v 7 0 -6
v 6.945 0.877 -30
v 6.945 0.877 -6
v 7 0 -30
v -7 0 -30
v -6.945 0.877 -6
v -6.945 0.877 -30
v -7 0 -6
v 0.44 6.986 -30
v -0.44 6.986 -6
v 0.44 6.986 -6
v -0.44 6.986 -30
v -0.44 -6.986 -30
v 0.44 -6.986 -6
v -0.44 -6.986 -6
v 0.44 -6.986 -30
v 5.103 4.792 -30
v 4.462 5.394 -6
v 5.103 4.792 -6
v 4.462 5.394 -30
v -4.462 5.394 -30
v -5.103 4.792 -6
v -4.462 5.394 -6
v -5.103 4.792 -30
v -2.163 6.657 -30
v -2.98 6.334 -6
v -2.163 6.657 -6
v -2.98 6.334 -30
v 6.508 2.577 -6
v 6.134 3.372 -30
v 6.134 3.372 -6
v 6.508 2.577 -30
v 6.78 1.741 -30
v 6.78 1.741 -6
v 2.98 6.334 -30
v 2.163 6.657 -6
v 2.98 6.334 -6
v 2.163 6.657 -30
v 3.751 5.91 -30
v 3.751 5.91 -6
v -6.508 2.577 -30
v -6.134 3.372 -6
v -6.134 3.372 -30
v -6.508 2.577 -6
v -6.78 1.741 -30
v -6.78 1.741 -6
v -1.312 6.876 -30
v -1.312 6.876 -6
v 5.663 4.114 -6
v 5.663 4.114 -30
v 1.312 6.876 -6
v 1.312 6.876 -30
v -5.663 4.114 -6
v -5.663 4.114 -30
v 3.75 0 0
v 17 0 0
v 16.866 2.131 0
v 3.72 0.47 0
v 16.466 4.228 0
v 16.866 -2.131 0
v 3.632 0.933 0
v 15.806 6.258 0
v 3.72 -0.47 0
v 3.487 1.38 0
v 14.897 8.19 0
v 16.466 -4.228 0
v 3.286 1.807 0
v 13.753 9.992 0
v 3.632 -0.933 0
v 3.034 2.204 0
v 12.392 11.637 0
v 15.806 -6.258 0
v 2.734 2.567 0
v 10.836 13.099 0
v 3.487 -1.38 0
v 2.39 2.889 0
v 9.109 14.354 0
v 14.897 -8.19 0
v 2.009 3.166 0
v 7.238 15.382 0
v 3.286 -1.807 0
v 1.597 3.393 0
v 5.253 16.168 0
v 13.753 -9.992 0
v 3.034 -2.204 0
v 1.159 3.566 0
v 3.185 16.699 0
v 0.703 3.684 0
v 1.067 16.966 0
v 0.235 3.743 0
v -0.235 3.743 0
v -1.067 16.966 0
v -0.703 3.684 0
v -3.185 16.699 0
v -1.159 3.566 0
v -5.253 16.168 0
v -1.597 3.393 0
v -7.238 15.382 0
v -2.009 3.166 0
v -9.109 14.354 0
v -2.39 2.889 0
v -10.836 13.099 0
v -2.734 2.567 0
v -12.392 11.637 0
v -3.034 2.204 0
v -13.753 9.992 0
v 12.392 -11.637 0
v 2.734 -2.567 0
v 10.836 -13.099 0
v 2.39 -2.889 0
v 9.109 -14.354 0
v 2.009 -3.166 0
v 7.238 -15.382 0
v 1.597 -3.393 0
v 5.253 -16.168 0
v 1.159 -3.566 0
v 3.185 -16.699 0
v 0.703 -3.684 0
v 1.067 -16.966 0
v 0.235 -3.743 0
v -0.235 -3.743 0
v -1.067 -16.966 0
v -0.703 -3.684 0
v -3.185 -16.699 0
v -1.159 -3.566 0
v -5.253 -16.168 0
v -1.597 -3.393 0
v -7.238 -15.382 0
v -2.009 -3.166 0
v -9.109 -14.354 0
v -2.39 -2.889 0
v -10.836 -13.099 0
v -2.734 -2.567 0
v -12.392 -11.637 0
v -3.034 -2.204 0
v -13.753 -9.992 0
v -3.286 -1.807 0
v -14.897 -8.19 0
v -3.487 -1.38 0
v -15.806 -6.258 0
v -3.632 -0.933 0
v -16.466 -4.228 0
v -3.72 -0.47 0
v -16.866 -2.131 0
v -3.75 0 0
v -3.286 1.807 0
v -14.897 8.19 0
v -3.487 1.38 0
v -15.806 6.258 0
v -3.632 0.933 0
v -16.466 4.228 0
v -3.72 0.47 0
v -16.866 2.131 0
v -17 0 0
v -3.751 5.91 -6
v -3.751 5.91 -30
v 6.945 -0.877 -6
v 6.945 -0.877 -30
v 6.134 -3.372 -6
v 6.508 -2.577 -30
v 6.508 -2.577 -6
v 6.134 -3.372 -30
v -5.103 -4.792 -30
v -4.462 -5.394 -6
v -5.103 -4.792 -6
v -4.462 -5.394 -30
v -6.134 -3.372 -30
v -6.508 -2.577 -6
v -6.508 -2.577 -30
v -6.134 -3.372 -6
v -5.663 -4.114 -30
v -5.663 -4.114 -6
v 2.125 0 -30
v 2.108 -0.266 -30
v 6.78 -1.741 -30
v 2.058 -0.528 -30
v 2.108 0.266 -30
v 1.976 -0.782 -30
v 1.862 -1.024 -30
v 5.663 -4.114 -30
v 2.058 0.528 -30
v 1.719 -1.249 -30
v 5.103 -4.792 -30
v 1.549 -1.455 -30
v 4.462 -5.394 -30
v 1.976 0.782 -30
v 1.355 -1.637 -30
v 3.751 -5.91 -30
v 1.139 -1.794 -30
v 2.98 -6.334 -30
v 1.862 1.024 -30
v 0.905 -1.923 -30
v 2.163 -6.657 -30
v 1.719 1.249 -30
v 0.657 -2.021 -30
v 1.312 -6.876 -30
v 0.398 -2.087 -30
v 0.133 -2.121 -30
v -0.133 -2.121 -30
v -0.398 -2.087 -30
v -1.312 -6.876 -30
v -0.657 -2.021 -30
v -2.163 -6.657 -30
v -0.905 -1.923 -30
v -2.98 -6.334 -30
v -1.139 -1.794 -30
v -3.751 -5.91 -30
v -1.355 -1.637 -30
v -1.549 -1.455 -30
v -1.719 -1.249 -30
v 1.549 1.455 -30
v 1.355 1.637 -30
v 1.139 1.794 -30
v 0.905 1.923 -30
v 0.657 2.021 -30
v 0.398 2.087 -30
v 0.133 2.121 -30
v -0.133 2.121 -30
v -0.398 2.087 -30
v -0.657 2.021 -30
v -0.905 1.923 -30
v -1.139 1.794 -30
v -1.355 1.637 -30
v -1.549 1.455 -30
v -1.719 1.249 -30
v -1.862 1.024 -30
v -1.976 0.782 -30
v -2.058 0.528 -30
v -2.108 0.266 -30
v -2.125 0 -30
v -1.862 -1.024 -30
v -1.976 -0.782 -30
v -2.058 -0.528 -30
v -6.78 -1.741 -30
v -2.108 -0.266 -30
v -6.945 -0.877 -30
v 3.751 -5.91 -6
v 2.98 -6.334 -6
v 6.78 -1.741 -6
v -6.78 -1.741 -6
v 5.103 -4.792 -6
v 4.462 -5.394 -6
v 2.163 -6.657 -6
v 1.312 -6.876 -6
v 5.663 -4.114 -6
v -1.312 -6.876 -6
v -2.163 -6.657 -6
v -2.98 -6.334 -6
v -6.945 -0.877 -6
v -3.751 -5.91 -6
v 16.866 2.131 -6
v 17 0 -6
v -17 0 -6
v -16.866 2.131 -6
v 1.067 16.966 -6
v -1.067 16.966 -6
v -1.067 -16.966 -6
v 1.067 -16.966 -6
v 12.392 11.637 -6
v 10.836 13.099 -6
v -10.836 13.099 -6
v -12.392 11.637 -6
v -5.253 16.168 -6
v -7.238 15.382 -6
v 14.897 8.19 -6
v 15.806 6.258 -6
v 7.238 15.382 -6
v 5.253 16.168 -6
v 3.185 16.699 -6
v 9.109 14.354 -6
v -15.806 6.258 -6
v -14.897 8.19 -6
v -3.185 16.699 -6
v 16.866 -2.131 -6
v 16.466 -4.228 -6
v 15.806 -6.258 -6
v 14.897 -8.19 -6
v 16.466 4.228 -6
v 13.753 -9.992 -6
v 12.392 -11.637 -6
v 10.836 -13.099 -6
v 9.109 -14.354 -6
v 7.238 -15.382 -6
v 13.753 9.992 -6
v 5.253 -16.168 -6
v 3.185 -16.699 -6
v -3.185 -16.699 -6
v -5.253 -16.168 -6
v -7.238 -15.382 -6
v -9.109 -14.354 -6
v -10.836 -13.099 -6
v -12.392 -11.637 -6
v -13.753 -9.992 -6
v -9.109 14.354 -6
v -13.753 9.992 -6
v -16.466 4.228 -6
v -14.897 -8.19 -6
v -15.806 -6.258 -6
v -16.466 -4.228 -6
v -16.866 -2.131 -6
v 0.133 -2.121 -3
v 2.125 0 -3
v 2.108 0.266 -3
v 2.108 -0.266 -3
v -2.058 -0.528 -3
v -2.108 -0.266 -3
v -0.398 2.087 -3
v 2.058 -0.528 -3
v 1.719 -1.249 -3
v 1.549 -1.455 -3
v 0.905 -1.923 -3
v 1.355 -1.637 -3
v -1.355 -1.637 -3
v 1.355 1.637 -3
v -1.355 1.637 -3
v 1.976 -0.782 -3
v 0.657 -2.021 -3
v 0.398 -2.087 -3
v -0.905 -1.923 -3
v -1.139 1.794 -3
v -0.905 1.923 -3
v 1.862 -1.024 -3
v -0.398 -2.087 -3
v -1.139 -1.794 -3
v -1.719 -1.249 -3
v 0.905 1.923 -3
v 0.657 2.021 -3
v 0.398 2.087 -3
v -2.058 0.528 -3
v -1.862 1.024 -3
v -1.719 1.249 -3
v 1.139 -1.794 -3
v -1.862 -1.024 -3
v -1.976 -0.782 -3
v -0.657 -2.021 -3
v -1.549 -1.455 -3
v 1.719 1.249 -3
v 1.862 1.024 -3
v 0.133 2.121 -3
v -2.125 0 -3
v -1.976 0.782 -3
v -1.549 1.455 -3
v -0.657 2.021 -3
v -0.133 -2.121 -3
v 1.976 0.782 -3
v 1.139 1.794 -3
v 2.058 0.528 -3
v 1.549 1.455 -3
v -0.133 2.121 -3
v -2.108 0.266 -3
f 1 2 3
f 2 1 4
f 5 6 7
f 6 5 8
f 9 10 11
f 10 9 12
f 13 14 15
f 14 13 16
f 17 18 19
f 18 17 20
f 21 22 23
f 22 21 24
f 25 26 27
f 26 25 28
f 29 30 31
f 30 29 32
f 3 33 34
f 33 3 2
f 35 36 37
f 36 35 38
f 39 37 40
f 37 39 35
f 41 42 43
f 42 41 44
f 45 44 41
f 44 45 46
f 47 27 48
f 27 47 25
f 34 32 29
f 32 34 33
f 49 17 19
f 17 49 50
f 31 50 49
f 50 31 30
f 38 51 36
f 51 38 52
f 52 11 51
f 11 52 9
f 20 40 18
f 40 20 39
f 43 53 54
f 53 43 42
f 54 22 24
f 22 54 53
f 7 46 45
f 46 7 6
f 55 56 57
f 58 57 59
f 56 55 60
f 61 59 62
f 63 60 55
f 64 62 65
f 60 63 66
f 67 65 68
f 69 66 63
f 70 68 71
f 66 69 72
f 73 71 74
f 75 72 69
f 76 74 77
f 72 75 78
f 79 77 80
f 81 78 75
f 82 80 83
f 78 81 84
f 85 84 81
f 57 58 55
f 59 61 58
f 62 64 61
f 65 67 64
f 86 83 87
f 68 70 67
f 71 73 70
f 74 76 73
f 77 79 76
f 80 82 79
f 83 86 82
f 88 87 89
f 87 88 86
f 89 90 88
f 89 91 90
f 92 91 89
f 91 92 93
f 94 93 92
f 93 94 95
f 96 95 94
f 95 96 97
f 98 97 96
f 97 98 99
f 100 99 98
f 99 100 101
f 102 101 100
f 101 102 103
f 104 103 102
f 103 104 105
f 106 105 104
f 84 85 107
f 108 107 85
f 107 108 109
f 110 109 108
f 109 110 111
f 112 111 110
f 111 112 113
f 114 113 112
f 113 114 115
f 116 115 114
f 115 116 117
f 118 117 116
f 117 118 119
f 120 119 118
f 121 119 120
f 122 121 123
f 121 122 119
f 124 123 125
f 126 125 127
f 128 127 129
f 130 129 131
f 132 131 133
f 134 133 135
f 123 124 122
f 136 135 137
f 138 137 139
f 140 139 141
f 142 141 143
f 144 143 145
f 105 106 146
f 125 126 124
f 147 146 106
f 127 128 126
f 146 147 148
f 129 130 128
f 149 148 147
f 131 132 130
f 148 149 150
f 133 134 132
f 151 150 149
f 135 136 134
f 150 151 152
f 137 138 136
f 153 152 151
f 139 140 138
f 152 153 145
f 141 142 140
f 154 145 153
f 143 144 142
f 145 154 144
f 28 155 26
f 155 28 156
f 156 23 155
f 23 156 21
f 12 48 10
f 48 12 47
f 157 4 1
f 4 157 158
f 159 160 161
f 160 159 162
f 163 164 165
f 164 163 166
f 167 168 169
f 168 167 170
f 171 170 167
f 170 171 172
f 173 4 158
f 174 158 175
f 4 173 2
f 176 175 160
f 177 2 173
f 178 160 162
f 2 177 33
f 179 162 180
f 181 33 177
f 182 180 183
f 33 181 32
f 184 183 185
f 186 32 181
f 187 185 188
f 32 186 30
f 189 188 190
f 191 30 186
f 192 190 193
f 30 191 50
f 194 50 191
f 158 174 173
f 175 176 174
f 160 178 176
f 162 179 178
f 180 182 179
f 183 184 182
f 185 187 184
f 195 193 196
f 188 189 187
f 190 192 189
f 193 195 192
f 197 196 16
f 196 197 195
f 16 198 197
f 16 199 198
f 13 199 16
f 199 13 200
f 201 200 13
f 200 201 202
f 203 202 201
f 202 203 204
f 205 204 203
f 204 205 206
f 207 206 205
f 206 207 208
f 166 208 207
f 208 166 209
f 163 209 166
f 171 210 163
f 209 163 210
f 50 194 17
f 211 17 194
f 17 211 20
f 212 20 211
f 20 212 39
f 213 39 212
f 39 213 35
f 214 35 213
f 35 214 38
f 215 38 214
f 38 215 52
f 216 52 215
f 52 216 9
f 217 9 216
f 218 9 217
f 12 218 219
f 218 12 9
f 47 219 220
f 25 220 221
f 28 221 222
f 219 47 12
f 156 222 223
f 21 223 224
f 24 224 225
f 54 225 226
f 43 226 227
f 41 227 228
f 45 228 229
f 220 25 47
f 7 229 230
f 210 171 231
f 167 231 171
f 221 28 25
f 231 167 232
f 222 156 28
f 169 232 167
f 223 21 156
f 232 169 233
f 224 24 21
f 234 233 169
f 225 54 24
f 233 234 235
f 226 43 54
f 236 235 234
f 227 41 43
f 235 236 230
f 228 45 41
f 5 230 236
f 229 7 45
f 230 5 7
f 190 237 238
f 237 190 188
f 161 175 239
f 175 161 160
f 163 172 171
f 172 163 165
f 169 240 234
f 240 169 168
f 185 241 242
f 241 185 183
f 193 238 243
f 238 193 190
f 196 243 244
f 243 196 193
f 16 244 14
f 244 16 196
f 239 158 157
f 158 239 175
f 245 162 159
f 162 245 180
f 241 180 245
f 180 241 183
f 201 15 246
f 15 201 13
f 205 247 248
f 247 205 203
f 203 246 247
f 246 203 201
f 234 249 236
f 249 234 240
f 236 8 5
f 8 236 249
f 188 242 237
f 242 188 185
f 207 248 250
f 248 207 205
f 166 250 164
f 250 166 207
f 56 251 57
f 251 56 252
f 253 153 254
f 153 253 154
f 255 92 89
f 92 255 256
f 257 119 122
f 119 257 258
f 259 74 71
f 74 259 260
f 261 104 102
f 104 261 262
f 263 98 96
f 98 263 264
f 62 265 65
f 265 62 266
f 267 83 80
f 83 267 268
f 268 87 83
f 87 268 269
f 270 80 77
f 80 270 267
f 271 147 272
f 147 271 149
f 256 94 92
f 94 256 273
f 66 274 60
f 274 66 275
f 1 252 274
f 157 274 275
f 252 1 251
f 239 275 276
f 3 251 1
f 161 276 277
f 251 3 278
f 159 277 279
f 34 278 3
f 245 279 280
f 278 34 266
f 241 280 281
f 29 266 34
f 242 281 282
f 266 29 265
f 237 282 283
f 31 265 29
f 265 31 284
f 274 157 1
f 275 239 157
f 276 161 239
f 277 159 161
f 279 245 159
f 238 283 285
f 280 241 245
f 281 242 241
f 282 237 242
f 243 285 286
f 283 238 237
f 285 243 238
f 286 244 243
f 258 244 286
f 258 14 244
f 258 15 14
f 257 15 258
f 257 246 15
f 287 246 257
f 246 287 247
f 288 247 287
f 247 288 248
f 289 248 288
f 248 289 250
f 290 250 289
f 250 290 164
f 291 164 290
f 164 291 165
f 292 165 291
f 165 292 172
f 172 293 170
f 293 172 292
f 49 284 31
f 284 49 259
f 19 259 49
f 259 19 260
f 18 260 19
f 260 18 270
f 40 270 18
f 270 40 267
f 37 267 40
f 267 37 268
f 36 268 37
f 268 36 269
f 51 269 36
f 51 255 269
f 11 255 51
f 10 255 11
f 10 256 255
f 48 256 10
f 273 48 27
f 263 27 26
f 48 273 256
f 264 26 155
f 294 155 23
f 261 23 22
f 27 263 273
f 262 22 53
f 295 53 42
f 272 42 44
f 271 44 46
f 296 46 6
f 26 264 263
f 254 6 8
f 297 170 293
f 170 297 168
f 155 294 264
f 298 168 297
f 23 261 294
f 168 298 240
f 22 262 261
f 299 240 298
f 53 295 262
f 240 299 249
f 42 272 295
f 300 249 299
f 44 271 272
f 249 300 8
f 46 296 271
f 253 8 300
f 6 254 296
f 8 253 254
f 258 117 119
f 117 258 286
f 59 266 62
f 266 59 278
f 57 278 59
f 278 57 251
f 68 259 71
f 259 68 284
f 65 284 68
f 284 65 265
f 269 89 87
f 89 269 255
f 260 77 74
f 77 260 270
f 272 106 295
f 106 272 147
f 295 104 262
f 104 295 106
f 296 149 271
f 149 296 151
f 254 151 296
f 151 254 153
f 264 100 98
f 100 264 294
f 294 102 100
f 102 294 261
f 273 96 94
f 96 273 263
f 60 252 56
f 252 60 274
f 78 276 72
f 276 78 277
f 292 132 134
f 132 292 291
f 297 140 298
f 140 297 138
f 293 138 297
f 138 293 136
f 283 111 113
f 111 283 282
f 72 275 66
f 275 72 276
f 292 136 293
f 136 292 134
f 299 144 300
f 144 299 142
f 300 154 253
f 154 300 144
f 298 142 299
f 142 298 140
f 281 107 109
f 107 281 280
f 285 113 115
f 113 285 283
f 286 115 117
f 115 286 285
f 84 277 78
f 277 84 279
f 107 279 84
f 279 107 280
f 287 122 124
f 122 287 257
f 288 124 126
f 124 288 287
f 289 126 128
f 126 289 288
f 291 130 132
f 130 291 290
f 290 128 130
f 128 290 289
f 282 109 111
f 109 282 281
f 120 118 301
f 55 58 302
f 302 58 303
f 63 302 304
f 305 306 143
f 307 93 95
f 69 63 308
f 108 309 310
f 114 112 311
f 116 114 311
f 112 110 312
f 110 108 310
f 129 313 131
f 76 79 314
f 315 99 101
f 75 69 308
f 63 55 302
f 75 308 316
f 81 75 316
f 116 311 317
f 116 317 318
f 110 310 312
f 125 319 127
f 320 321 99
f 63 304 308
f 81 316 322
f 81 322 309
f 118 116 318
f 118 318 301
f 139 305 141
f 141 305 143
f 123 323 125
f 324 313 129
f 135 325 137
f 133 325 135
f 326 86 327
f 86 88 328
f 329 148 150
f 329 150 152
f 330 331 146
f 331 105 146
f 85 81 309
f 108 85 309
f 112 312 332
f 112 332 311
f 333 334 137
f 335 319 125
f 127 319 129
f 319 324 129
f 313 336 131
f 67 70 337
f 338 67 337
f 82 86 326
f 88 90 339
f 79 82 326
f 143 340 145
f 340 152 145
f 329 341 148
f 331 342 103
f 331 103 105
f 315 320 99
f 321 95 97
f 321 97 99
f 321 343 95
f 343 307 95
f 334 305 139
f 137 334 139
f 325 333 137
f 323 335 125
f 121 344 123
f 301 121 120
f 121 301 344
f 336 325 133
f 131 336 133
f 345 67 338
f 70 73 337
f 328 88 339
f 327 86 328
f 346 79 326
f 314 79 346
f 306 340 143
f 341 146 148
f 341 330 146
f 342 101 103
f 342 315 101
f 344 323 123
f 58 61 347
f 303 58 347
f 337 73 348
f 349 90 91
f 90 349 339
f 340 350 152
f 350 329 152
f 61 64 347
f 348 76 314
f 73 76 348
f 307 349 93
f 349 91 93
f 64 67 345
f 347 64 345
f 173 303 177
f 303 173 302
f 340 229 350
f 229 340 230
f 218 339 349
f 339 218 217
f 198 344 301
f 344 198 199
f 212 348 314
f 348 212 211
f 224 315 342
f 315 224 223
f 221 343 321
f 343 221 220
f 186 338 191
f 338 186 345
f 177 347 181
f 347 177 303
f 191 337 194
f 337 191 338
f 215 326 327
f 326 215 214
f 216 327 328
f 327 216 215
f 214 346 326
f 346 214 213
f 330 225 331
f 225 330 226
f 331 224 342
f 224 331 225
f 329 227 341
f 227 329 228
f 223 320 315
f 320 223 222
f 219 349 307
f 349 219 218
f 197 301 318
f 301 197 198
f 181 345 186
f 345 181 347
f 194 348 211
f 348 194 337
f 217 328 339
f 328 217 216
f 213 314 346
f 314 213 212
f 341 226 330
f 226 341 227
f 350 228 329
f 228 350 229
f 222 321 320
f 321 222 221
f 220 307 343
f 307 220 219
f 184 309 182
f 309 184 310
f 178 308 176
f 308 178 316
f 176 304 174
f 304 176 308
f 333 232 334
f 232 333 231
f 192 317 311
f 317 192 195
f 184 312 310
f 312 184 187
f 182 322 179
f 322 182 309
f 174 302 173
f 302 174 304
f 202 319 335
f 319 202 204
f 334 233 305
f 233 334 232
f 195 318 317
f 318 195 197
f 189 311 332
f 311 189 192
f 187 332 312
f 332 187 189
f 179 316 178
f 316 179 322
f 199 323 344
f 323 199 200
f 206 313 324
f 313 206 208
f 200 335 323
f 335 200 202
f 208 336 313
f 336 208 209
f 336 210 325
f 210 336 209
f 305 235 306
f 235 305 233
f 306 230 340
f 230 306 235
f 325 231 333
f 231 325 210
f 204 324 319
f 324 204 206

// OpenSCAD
$fn = 50;


difference() {
	union() {
		translate(v = [0, 0, -30.0000000000]) {
			cylinder(h = 30, r = 7.0000000000);
		}
		translate(v = [0, 0, -6.0000000000]) {
			cylinder(h = 6, r = 17.0000000000);
		}
	}
	union() {
		translate(v = [0, 0, 0]) {
			rotate(a = [0, 0, 0]) {
				difference() {
					union() {
						#translate(v = [0, 0, -30.0000000000]) {
							cylinder(h = 30, r = 2.0000000000);
						}
						#translate(v = [0, 0, -3]) {
							cylinder(h = 3, r = 7.0000000000, r1 = 2.1250000000, r2 = 3.7500000000);
						}
						#translate(v = [0, 0, -30.0000000000]) {
							cylinder(h = 30, r = 2.1250000000);
						}
						#translate(v = [0, 0, -30.0000000000]) {
							cylinder(h = 30, r = 2.0000000000);
						}
					}
					union();
				}
			}
		}
	}
}
